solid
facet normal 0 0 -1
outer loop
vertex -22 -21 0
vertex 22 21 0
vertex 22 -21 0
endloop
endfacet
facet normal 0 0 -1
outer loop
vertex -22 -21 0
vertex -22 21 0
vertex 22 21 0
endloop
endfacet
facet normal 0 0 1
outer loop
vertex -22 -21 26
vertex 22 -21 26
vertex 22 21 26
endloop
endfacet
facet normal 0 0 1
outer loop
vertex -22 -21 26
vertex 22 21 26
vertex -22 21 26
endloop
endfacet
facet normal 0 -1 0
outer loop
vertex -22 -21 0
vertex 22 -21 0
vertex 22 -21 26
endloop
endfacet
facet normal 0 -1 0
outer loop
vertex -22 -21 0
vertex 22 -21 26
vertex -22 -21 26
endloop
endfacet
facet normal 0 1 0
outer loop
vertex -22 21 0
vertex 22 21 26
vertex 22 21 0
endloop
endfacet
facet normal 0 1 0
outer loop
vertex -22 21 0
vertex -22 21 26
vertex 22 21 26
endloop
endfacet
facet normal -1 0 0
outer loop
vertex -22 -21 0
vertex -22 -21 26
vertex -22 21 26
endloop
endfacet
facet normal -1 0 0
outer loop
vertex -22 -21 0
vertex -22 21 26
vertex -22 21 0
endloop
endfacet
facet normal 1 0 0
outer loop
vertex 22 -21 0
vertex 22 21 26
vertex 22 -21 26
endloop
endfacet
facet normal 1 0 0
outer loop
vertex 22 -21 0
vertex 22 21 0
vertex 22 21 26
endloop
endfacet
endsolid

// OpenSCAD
// Gemini 4 Argon Parametric OpenSCAD — PRT-05: 2020 V-Slot Rear Strut Locking Collar
$fn = 64;
translate([-22.00, -21.00, 0])
  cube([44, 42, 26]);
